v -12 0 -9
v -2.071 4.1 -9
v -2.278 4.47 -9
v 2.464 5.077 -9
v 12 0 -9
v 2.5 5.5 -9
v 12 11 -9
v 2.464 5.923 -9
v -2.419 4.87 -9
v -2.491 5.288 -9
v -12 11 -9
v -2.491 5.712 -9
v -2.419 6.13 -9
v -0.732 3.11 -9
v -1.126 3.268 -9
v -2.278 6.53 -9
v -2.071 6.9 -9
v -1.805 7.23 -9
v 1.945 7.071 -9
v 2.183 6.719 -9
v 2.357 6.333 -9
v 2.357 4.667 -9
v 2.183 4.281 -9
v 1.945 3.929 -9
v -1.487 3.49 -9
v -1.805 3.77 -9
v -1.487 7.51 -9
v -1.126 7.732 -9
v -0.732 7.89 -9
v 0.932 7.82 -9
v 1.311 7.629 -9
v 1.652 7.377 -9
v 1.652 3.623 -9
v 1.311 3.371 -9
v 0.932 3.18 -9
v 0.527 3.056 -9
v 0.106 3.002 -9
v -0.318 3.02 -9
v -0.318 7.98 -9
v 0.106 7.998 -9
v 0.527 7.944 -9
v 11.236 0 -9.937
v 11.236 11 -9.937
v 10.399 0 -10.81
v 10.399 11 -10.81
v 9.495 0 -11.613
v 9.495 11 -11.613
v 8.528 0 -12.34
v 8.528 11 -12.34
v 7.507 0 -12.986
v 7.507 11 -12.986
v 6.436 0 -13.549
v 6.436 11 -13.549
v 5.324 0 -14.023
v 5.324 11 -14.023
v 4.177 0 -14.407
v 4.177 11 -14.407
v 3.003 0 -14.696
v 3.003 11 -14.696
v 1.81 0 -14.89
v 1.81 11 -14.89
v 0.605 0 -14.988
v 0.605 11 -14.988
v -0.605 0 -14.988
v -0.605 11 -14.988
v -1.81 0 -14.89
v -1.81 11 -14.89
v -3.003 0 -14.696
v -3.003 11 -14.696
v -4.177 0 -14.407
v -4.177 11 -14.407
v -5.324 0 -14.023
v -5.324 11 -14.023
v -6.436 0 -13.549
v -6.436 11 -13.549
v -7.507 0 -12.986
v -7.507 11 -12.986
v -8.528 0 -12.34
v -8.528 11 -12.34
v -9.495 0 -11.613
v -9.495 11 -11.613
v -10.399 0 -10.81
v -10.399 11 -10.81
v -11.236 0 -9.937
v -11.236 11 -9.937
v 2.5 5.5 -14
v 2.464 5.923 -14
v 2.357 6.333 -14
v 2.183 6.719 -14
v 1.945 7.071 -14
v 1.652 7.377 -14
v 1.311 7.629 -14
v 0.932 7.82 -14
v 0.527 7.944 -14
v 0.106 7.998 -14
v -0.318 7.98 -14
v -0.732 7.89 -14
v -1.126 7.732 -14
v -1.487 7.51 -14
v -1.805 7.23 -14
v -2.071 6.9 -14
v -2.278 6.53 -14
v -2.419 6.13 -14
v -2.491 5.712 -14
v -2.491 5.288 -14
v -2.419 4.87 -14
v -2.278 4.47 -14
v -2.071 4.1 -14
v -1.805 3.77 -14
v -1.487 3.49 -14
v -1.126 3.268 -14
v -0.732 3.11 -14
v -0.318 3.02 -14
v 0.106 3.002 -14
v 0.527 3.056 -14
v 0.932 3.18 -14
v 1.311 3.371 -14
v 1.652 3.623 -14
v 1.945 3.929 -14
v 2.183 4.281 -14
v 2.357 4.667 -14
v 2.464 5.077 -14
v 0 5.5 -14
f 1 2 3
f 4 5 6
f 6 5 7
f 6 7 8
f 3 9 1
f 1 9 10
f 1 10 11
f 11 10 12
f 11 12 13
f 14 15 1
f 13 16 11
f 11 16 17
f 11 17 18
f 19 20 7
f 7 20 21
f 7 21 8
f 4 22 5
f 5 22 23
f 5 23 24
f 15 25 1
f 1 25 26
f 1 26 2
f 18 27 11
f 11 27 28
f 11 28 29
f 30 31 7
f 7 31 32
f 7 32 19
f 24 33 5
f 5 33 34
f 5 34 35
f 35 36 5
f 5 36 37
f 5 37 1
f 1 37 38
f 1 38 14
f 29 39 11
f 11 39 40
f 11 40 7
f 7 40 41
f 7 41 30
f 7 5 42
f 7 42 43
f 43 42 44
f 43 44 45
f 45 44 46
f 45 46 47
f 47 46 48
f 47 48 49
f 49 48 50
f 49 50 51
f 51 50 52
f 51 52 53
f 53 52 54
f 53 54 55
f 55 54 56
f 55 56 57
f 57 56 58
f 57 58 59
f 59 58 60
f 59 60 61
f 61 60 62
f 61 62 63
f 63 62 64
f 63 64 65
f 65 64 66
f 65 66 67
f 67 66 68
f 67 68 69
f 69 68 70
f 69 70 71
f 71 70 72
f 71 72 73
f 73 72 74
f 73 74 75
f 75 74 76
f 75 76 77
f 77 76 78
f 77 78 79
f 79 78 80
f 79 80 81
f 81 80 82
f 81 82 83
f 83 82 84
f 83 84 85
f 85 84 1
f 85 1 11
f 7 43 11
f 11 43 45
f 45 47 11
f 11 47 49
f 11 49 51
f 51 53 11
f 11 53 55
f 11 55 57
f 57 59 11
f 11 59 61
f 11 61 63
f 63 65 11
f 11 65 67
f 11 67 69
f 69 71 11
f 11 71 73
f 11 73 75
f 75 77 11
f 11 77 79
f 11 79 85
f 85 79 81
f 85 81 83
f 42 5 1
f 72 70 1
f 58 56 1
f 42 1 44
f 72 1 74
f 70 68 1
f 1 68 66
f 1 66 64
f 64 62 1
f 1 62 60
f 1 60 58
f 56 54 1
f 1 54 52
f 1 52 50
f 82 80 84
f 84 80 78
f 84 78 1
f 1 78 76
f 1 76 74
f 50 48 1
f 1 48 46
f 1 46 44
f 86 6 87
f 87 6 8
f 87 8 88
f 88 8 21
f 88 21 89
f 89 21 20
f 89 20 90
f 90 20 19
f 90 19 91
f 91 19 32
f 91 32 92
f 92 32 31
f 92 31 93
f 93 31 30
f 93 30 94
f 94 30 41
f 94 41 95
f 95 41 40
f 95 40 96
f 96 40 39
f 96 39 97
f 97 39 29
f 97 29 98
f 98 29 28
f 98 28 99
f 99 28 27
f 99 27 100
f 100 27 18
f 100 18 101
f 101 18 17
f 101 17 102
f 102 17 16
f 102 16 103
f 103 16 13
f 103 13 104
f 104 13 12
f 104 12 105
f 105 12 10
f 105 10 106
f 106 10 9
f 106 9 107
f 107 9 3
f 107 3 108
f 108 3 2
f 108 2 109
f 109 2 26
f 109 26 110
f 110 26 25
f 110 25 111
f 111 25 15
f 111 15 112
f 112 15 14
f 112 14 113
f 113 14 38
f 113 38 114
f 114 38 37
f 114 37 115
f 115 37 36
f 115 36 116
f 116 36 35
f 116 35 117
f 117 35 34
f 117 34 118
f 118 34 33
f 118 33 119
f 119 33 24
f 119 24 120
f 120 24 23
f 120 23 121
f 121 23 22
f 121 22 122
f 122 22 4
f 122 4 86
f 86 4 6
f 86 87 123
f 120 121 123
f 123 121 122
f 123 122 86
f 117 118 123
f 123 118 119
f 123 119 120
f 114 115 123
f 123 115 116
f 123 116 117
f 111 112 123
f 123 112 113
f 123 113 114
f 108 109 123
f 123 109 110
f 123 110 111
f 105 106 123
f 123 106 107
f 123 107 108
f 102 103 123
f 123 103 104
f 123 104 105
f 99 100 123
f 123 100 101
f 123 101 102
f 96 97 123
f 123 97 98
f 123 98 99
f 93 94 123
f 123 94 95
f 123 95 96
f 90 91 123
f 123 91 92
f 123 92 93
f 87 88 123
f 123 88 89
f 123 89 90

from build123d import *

# Parameters (mm, degrees)
EXTRUDE_1_DEPTH     = 11
CUT_EXTRUDE_2_DEPTH = 5


with BuildPart() as part:
    # 草图2 → 凸台-拉伸1 (new body)
    with BuildSketch(Plane(origin=(0, 0, 0), x_dir=(1, 0, 0), z_dir=(0, 1, 0))):
        with BuildLine():
            Line((-12, 9), (0, 9))
            Line((0, 9), (12, 9))
            ThreePointArc((12, 9), (0, 15), (-12, 9))
        make_face()
    extrude(amount=EXTRUDE_1_DEPTH)

    # 草图3 → 切除-拉伸2 (cut)
    with BuildSketch(Plane.XY.offset(-9)):
        with BuildLine():
            ThreePointArc((0, 8), (-2.5, 5.5), (0, 3))
            Line((0, 3), (0, 8))
        make_face()
        with BuildLine():
            Line((0, 8), (0, 3))
            ThreePointArc((0, 3), (1.767766953, 3.732233047), (2.5, 5.5))
            ThreePointArc((2.5, 5.5), (1.767766953, 7.267766953), (0, 8))
        make_face()
    extrude(amount=-CUT_EXTRUDE_2_DEPTH, mode=Mode.SUBTRACT)


solid = part.part
